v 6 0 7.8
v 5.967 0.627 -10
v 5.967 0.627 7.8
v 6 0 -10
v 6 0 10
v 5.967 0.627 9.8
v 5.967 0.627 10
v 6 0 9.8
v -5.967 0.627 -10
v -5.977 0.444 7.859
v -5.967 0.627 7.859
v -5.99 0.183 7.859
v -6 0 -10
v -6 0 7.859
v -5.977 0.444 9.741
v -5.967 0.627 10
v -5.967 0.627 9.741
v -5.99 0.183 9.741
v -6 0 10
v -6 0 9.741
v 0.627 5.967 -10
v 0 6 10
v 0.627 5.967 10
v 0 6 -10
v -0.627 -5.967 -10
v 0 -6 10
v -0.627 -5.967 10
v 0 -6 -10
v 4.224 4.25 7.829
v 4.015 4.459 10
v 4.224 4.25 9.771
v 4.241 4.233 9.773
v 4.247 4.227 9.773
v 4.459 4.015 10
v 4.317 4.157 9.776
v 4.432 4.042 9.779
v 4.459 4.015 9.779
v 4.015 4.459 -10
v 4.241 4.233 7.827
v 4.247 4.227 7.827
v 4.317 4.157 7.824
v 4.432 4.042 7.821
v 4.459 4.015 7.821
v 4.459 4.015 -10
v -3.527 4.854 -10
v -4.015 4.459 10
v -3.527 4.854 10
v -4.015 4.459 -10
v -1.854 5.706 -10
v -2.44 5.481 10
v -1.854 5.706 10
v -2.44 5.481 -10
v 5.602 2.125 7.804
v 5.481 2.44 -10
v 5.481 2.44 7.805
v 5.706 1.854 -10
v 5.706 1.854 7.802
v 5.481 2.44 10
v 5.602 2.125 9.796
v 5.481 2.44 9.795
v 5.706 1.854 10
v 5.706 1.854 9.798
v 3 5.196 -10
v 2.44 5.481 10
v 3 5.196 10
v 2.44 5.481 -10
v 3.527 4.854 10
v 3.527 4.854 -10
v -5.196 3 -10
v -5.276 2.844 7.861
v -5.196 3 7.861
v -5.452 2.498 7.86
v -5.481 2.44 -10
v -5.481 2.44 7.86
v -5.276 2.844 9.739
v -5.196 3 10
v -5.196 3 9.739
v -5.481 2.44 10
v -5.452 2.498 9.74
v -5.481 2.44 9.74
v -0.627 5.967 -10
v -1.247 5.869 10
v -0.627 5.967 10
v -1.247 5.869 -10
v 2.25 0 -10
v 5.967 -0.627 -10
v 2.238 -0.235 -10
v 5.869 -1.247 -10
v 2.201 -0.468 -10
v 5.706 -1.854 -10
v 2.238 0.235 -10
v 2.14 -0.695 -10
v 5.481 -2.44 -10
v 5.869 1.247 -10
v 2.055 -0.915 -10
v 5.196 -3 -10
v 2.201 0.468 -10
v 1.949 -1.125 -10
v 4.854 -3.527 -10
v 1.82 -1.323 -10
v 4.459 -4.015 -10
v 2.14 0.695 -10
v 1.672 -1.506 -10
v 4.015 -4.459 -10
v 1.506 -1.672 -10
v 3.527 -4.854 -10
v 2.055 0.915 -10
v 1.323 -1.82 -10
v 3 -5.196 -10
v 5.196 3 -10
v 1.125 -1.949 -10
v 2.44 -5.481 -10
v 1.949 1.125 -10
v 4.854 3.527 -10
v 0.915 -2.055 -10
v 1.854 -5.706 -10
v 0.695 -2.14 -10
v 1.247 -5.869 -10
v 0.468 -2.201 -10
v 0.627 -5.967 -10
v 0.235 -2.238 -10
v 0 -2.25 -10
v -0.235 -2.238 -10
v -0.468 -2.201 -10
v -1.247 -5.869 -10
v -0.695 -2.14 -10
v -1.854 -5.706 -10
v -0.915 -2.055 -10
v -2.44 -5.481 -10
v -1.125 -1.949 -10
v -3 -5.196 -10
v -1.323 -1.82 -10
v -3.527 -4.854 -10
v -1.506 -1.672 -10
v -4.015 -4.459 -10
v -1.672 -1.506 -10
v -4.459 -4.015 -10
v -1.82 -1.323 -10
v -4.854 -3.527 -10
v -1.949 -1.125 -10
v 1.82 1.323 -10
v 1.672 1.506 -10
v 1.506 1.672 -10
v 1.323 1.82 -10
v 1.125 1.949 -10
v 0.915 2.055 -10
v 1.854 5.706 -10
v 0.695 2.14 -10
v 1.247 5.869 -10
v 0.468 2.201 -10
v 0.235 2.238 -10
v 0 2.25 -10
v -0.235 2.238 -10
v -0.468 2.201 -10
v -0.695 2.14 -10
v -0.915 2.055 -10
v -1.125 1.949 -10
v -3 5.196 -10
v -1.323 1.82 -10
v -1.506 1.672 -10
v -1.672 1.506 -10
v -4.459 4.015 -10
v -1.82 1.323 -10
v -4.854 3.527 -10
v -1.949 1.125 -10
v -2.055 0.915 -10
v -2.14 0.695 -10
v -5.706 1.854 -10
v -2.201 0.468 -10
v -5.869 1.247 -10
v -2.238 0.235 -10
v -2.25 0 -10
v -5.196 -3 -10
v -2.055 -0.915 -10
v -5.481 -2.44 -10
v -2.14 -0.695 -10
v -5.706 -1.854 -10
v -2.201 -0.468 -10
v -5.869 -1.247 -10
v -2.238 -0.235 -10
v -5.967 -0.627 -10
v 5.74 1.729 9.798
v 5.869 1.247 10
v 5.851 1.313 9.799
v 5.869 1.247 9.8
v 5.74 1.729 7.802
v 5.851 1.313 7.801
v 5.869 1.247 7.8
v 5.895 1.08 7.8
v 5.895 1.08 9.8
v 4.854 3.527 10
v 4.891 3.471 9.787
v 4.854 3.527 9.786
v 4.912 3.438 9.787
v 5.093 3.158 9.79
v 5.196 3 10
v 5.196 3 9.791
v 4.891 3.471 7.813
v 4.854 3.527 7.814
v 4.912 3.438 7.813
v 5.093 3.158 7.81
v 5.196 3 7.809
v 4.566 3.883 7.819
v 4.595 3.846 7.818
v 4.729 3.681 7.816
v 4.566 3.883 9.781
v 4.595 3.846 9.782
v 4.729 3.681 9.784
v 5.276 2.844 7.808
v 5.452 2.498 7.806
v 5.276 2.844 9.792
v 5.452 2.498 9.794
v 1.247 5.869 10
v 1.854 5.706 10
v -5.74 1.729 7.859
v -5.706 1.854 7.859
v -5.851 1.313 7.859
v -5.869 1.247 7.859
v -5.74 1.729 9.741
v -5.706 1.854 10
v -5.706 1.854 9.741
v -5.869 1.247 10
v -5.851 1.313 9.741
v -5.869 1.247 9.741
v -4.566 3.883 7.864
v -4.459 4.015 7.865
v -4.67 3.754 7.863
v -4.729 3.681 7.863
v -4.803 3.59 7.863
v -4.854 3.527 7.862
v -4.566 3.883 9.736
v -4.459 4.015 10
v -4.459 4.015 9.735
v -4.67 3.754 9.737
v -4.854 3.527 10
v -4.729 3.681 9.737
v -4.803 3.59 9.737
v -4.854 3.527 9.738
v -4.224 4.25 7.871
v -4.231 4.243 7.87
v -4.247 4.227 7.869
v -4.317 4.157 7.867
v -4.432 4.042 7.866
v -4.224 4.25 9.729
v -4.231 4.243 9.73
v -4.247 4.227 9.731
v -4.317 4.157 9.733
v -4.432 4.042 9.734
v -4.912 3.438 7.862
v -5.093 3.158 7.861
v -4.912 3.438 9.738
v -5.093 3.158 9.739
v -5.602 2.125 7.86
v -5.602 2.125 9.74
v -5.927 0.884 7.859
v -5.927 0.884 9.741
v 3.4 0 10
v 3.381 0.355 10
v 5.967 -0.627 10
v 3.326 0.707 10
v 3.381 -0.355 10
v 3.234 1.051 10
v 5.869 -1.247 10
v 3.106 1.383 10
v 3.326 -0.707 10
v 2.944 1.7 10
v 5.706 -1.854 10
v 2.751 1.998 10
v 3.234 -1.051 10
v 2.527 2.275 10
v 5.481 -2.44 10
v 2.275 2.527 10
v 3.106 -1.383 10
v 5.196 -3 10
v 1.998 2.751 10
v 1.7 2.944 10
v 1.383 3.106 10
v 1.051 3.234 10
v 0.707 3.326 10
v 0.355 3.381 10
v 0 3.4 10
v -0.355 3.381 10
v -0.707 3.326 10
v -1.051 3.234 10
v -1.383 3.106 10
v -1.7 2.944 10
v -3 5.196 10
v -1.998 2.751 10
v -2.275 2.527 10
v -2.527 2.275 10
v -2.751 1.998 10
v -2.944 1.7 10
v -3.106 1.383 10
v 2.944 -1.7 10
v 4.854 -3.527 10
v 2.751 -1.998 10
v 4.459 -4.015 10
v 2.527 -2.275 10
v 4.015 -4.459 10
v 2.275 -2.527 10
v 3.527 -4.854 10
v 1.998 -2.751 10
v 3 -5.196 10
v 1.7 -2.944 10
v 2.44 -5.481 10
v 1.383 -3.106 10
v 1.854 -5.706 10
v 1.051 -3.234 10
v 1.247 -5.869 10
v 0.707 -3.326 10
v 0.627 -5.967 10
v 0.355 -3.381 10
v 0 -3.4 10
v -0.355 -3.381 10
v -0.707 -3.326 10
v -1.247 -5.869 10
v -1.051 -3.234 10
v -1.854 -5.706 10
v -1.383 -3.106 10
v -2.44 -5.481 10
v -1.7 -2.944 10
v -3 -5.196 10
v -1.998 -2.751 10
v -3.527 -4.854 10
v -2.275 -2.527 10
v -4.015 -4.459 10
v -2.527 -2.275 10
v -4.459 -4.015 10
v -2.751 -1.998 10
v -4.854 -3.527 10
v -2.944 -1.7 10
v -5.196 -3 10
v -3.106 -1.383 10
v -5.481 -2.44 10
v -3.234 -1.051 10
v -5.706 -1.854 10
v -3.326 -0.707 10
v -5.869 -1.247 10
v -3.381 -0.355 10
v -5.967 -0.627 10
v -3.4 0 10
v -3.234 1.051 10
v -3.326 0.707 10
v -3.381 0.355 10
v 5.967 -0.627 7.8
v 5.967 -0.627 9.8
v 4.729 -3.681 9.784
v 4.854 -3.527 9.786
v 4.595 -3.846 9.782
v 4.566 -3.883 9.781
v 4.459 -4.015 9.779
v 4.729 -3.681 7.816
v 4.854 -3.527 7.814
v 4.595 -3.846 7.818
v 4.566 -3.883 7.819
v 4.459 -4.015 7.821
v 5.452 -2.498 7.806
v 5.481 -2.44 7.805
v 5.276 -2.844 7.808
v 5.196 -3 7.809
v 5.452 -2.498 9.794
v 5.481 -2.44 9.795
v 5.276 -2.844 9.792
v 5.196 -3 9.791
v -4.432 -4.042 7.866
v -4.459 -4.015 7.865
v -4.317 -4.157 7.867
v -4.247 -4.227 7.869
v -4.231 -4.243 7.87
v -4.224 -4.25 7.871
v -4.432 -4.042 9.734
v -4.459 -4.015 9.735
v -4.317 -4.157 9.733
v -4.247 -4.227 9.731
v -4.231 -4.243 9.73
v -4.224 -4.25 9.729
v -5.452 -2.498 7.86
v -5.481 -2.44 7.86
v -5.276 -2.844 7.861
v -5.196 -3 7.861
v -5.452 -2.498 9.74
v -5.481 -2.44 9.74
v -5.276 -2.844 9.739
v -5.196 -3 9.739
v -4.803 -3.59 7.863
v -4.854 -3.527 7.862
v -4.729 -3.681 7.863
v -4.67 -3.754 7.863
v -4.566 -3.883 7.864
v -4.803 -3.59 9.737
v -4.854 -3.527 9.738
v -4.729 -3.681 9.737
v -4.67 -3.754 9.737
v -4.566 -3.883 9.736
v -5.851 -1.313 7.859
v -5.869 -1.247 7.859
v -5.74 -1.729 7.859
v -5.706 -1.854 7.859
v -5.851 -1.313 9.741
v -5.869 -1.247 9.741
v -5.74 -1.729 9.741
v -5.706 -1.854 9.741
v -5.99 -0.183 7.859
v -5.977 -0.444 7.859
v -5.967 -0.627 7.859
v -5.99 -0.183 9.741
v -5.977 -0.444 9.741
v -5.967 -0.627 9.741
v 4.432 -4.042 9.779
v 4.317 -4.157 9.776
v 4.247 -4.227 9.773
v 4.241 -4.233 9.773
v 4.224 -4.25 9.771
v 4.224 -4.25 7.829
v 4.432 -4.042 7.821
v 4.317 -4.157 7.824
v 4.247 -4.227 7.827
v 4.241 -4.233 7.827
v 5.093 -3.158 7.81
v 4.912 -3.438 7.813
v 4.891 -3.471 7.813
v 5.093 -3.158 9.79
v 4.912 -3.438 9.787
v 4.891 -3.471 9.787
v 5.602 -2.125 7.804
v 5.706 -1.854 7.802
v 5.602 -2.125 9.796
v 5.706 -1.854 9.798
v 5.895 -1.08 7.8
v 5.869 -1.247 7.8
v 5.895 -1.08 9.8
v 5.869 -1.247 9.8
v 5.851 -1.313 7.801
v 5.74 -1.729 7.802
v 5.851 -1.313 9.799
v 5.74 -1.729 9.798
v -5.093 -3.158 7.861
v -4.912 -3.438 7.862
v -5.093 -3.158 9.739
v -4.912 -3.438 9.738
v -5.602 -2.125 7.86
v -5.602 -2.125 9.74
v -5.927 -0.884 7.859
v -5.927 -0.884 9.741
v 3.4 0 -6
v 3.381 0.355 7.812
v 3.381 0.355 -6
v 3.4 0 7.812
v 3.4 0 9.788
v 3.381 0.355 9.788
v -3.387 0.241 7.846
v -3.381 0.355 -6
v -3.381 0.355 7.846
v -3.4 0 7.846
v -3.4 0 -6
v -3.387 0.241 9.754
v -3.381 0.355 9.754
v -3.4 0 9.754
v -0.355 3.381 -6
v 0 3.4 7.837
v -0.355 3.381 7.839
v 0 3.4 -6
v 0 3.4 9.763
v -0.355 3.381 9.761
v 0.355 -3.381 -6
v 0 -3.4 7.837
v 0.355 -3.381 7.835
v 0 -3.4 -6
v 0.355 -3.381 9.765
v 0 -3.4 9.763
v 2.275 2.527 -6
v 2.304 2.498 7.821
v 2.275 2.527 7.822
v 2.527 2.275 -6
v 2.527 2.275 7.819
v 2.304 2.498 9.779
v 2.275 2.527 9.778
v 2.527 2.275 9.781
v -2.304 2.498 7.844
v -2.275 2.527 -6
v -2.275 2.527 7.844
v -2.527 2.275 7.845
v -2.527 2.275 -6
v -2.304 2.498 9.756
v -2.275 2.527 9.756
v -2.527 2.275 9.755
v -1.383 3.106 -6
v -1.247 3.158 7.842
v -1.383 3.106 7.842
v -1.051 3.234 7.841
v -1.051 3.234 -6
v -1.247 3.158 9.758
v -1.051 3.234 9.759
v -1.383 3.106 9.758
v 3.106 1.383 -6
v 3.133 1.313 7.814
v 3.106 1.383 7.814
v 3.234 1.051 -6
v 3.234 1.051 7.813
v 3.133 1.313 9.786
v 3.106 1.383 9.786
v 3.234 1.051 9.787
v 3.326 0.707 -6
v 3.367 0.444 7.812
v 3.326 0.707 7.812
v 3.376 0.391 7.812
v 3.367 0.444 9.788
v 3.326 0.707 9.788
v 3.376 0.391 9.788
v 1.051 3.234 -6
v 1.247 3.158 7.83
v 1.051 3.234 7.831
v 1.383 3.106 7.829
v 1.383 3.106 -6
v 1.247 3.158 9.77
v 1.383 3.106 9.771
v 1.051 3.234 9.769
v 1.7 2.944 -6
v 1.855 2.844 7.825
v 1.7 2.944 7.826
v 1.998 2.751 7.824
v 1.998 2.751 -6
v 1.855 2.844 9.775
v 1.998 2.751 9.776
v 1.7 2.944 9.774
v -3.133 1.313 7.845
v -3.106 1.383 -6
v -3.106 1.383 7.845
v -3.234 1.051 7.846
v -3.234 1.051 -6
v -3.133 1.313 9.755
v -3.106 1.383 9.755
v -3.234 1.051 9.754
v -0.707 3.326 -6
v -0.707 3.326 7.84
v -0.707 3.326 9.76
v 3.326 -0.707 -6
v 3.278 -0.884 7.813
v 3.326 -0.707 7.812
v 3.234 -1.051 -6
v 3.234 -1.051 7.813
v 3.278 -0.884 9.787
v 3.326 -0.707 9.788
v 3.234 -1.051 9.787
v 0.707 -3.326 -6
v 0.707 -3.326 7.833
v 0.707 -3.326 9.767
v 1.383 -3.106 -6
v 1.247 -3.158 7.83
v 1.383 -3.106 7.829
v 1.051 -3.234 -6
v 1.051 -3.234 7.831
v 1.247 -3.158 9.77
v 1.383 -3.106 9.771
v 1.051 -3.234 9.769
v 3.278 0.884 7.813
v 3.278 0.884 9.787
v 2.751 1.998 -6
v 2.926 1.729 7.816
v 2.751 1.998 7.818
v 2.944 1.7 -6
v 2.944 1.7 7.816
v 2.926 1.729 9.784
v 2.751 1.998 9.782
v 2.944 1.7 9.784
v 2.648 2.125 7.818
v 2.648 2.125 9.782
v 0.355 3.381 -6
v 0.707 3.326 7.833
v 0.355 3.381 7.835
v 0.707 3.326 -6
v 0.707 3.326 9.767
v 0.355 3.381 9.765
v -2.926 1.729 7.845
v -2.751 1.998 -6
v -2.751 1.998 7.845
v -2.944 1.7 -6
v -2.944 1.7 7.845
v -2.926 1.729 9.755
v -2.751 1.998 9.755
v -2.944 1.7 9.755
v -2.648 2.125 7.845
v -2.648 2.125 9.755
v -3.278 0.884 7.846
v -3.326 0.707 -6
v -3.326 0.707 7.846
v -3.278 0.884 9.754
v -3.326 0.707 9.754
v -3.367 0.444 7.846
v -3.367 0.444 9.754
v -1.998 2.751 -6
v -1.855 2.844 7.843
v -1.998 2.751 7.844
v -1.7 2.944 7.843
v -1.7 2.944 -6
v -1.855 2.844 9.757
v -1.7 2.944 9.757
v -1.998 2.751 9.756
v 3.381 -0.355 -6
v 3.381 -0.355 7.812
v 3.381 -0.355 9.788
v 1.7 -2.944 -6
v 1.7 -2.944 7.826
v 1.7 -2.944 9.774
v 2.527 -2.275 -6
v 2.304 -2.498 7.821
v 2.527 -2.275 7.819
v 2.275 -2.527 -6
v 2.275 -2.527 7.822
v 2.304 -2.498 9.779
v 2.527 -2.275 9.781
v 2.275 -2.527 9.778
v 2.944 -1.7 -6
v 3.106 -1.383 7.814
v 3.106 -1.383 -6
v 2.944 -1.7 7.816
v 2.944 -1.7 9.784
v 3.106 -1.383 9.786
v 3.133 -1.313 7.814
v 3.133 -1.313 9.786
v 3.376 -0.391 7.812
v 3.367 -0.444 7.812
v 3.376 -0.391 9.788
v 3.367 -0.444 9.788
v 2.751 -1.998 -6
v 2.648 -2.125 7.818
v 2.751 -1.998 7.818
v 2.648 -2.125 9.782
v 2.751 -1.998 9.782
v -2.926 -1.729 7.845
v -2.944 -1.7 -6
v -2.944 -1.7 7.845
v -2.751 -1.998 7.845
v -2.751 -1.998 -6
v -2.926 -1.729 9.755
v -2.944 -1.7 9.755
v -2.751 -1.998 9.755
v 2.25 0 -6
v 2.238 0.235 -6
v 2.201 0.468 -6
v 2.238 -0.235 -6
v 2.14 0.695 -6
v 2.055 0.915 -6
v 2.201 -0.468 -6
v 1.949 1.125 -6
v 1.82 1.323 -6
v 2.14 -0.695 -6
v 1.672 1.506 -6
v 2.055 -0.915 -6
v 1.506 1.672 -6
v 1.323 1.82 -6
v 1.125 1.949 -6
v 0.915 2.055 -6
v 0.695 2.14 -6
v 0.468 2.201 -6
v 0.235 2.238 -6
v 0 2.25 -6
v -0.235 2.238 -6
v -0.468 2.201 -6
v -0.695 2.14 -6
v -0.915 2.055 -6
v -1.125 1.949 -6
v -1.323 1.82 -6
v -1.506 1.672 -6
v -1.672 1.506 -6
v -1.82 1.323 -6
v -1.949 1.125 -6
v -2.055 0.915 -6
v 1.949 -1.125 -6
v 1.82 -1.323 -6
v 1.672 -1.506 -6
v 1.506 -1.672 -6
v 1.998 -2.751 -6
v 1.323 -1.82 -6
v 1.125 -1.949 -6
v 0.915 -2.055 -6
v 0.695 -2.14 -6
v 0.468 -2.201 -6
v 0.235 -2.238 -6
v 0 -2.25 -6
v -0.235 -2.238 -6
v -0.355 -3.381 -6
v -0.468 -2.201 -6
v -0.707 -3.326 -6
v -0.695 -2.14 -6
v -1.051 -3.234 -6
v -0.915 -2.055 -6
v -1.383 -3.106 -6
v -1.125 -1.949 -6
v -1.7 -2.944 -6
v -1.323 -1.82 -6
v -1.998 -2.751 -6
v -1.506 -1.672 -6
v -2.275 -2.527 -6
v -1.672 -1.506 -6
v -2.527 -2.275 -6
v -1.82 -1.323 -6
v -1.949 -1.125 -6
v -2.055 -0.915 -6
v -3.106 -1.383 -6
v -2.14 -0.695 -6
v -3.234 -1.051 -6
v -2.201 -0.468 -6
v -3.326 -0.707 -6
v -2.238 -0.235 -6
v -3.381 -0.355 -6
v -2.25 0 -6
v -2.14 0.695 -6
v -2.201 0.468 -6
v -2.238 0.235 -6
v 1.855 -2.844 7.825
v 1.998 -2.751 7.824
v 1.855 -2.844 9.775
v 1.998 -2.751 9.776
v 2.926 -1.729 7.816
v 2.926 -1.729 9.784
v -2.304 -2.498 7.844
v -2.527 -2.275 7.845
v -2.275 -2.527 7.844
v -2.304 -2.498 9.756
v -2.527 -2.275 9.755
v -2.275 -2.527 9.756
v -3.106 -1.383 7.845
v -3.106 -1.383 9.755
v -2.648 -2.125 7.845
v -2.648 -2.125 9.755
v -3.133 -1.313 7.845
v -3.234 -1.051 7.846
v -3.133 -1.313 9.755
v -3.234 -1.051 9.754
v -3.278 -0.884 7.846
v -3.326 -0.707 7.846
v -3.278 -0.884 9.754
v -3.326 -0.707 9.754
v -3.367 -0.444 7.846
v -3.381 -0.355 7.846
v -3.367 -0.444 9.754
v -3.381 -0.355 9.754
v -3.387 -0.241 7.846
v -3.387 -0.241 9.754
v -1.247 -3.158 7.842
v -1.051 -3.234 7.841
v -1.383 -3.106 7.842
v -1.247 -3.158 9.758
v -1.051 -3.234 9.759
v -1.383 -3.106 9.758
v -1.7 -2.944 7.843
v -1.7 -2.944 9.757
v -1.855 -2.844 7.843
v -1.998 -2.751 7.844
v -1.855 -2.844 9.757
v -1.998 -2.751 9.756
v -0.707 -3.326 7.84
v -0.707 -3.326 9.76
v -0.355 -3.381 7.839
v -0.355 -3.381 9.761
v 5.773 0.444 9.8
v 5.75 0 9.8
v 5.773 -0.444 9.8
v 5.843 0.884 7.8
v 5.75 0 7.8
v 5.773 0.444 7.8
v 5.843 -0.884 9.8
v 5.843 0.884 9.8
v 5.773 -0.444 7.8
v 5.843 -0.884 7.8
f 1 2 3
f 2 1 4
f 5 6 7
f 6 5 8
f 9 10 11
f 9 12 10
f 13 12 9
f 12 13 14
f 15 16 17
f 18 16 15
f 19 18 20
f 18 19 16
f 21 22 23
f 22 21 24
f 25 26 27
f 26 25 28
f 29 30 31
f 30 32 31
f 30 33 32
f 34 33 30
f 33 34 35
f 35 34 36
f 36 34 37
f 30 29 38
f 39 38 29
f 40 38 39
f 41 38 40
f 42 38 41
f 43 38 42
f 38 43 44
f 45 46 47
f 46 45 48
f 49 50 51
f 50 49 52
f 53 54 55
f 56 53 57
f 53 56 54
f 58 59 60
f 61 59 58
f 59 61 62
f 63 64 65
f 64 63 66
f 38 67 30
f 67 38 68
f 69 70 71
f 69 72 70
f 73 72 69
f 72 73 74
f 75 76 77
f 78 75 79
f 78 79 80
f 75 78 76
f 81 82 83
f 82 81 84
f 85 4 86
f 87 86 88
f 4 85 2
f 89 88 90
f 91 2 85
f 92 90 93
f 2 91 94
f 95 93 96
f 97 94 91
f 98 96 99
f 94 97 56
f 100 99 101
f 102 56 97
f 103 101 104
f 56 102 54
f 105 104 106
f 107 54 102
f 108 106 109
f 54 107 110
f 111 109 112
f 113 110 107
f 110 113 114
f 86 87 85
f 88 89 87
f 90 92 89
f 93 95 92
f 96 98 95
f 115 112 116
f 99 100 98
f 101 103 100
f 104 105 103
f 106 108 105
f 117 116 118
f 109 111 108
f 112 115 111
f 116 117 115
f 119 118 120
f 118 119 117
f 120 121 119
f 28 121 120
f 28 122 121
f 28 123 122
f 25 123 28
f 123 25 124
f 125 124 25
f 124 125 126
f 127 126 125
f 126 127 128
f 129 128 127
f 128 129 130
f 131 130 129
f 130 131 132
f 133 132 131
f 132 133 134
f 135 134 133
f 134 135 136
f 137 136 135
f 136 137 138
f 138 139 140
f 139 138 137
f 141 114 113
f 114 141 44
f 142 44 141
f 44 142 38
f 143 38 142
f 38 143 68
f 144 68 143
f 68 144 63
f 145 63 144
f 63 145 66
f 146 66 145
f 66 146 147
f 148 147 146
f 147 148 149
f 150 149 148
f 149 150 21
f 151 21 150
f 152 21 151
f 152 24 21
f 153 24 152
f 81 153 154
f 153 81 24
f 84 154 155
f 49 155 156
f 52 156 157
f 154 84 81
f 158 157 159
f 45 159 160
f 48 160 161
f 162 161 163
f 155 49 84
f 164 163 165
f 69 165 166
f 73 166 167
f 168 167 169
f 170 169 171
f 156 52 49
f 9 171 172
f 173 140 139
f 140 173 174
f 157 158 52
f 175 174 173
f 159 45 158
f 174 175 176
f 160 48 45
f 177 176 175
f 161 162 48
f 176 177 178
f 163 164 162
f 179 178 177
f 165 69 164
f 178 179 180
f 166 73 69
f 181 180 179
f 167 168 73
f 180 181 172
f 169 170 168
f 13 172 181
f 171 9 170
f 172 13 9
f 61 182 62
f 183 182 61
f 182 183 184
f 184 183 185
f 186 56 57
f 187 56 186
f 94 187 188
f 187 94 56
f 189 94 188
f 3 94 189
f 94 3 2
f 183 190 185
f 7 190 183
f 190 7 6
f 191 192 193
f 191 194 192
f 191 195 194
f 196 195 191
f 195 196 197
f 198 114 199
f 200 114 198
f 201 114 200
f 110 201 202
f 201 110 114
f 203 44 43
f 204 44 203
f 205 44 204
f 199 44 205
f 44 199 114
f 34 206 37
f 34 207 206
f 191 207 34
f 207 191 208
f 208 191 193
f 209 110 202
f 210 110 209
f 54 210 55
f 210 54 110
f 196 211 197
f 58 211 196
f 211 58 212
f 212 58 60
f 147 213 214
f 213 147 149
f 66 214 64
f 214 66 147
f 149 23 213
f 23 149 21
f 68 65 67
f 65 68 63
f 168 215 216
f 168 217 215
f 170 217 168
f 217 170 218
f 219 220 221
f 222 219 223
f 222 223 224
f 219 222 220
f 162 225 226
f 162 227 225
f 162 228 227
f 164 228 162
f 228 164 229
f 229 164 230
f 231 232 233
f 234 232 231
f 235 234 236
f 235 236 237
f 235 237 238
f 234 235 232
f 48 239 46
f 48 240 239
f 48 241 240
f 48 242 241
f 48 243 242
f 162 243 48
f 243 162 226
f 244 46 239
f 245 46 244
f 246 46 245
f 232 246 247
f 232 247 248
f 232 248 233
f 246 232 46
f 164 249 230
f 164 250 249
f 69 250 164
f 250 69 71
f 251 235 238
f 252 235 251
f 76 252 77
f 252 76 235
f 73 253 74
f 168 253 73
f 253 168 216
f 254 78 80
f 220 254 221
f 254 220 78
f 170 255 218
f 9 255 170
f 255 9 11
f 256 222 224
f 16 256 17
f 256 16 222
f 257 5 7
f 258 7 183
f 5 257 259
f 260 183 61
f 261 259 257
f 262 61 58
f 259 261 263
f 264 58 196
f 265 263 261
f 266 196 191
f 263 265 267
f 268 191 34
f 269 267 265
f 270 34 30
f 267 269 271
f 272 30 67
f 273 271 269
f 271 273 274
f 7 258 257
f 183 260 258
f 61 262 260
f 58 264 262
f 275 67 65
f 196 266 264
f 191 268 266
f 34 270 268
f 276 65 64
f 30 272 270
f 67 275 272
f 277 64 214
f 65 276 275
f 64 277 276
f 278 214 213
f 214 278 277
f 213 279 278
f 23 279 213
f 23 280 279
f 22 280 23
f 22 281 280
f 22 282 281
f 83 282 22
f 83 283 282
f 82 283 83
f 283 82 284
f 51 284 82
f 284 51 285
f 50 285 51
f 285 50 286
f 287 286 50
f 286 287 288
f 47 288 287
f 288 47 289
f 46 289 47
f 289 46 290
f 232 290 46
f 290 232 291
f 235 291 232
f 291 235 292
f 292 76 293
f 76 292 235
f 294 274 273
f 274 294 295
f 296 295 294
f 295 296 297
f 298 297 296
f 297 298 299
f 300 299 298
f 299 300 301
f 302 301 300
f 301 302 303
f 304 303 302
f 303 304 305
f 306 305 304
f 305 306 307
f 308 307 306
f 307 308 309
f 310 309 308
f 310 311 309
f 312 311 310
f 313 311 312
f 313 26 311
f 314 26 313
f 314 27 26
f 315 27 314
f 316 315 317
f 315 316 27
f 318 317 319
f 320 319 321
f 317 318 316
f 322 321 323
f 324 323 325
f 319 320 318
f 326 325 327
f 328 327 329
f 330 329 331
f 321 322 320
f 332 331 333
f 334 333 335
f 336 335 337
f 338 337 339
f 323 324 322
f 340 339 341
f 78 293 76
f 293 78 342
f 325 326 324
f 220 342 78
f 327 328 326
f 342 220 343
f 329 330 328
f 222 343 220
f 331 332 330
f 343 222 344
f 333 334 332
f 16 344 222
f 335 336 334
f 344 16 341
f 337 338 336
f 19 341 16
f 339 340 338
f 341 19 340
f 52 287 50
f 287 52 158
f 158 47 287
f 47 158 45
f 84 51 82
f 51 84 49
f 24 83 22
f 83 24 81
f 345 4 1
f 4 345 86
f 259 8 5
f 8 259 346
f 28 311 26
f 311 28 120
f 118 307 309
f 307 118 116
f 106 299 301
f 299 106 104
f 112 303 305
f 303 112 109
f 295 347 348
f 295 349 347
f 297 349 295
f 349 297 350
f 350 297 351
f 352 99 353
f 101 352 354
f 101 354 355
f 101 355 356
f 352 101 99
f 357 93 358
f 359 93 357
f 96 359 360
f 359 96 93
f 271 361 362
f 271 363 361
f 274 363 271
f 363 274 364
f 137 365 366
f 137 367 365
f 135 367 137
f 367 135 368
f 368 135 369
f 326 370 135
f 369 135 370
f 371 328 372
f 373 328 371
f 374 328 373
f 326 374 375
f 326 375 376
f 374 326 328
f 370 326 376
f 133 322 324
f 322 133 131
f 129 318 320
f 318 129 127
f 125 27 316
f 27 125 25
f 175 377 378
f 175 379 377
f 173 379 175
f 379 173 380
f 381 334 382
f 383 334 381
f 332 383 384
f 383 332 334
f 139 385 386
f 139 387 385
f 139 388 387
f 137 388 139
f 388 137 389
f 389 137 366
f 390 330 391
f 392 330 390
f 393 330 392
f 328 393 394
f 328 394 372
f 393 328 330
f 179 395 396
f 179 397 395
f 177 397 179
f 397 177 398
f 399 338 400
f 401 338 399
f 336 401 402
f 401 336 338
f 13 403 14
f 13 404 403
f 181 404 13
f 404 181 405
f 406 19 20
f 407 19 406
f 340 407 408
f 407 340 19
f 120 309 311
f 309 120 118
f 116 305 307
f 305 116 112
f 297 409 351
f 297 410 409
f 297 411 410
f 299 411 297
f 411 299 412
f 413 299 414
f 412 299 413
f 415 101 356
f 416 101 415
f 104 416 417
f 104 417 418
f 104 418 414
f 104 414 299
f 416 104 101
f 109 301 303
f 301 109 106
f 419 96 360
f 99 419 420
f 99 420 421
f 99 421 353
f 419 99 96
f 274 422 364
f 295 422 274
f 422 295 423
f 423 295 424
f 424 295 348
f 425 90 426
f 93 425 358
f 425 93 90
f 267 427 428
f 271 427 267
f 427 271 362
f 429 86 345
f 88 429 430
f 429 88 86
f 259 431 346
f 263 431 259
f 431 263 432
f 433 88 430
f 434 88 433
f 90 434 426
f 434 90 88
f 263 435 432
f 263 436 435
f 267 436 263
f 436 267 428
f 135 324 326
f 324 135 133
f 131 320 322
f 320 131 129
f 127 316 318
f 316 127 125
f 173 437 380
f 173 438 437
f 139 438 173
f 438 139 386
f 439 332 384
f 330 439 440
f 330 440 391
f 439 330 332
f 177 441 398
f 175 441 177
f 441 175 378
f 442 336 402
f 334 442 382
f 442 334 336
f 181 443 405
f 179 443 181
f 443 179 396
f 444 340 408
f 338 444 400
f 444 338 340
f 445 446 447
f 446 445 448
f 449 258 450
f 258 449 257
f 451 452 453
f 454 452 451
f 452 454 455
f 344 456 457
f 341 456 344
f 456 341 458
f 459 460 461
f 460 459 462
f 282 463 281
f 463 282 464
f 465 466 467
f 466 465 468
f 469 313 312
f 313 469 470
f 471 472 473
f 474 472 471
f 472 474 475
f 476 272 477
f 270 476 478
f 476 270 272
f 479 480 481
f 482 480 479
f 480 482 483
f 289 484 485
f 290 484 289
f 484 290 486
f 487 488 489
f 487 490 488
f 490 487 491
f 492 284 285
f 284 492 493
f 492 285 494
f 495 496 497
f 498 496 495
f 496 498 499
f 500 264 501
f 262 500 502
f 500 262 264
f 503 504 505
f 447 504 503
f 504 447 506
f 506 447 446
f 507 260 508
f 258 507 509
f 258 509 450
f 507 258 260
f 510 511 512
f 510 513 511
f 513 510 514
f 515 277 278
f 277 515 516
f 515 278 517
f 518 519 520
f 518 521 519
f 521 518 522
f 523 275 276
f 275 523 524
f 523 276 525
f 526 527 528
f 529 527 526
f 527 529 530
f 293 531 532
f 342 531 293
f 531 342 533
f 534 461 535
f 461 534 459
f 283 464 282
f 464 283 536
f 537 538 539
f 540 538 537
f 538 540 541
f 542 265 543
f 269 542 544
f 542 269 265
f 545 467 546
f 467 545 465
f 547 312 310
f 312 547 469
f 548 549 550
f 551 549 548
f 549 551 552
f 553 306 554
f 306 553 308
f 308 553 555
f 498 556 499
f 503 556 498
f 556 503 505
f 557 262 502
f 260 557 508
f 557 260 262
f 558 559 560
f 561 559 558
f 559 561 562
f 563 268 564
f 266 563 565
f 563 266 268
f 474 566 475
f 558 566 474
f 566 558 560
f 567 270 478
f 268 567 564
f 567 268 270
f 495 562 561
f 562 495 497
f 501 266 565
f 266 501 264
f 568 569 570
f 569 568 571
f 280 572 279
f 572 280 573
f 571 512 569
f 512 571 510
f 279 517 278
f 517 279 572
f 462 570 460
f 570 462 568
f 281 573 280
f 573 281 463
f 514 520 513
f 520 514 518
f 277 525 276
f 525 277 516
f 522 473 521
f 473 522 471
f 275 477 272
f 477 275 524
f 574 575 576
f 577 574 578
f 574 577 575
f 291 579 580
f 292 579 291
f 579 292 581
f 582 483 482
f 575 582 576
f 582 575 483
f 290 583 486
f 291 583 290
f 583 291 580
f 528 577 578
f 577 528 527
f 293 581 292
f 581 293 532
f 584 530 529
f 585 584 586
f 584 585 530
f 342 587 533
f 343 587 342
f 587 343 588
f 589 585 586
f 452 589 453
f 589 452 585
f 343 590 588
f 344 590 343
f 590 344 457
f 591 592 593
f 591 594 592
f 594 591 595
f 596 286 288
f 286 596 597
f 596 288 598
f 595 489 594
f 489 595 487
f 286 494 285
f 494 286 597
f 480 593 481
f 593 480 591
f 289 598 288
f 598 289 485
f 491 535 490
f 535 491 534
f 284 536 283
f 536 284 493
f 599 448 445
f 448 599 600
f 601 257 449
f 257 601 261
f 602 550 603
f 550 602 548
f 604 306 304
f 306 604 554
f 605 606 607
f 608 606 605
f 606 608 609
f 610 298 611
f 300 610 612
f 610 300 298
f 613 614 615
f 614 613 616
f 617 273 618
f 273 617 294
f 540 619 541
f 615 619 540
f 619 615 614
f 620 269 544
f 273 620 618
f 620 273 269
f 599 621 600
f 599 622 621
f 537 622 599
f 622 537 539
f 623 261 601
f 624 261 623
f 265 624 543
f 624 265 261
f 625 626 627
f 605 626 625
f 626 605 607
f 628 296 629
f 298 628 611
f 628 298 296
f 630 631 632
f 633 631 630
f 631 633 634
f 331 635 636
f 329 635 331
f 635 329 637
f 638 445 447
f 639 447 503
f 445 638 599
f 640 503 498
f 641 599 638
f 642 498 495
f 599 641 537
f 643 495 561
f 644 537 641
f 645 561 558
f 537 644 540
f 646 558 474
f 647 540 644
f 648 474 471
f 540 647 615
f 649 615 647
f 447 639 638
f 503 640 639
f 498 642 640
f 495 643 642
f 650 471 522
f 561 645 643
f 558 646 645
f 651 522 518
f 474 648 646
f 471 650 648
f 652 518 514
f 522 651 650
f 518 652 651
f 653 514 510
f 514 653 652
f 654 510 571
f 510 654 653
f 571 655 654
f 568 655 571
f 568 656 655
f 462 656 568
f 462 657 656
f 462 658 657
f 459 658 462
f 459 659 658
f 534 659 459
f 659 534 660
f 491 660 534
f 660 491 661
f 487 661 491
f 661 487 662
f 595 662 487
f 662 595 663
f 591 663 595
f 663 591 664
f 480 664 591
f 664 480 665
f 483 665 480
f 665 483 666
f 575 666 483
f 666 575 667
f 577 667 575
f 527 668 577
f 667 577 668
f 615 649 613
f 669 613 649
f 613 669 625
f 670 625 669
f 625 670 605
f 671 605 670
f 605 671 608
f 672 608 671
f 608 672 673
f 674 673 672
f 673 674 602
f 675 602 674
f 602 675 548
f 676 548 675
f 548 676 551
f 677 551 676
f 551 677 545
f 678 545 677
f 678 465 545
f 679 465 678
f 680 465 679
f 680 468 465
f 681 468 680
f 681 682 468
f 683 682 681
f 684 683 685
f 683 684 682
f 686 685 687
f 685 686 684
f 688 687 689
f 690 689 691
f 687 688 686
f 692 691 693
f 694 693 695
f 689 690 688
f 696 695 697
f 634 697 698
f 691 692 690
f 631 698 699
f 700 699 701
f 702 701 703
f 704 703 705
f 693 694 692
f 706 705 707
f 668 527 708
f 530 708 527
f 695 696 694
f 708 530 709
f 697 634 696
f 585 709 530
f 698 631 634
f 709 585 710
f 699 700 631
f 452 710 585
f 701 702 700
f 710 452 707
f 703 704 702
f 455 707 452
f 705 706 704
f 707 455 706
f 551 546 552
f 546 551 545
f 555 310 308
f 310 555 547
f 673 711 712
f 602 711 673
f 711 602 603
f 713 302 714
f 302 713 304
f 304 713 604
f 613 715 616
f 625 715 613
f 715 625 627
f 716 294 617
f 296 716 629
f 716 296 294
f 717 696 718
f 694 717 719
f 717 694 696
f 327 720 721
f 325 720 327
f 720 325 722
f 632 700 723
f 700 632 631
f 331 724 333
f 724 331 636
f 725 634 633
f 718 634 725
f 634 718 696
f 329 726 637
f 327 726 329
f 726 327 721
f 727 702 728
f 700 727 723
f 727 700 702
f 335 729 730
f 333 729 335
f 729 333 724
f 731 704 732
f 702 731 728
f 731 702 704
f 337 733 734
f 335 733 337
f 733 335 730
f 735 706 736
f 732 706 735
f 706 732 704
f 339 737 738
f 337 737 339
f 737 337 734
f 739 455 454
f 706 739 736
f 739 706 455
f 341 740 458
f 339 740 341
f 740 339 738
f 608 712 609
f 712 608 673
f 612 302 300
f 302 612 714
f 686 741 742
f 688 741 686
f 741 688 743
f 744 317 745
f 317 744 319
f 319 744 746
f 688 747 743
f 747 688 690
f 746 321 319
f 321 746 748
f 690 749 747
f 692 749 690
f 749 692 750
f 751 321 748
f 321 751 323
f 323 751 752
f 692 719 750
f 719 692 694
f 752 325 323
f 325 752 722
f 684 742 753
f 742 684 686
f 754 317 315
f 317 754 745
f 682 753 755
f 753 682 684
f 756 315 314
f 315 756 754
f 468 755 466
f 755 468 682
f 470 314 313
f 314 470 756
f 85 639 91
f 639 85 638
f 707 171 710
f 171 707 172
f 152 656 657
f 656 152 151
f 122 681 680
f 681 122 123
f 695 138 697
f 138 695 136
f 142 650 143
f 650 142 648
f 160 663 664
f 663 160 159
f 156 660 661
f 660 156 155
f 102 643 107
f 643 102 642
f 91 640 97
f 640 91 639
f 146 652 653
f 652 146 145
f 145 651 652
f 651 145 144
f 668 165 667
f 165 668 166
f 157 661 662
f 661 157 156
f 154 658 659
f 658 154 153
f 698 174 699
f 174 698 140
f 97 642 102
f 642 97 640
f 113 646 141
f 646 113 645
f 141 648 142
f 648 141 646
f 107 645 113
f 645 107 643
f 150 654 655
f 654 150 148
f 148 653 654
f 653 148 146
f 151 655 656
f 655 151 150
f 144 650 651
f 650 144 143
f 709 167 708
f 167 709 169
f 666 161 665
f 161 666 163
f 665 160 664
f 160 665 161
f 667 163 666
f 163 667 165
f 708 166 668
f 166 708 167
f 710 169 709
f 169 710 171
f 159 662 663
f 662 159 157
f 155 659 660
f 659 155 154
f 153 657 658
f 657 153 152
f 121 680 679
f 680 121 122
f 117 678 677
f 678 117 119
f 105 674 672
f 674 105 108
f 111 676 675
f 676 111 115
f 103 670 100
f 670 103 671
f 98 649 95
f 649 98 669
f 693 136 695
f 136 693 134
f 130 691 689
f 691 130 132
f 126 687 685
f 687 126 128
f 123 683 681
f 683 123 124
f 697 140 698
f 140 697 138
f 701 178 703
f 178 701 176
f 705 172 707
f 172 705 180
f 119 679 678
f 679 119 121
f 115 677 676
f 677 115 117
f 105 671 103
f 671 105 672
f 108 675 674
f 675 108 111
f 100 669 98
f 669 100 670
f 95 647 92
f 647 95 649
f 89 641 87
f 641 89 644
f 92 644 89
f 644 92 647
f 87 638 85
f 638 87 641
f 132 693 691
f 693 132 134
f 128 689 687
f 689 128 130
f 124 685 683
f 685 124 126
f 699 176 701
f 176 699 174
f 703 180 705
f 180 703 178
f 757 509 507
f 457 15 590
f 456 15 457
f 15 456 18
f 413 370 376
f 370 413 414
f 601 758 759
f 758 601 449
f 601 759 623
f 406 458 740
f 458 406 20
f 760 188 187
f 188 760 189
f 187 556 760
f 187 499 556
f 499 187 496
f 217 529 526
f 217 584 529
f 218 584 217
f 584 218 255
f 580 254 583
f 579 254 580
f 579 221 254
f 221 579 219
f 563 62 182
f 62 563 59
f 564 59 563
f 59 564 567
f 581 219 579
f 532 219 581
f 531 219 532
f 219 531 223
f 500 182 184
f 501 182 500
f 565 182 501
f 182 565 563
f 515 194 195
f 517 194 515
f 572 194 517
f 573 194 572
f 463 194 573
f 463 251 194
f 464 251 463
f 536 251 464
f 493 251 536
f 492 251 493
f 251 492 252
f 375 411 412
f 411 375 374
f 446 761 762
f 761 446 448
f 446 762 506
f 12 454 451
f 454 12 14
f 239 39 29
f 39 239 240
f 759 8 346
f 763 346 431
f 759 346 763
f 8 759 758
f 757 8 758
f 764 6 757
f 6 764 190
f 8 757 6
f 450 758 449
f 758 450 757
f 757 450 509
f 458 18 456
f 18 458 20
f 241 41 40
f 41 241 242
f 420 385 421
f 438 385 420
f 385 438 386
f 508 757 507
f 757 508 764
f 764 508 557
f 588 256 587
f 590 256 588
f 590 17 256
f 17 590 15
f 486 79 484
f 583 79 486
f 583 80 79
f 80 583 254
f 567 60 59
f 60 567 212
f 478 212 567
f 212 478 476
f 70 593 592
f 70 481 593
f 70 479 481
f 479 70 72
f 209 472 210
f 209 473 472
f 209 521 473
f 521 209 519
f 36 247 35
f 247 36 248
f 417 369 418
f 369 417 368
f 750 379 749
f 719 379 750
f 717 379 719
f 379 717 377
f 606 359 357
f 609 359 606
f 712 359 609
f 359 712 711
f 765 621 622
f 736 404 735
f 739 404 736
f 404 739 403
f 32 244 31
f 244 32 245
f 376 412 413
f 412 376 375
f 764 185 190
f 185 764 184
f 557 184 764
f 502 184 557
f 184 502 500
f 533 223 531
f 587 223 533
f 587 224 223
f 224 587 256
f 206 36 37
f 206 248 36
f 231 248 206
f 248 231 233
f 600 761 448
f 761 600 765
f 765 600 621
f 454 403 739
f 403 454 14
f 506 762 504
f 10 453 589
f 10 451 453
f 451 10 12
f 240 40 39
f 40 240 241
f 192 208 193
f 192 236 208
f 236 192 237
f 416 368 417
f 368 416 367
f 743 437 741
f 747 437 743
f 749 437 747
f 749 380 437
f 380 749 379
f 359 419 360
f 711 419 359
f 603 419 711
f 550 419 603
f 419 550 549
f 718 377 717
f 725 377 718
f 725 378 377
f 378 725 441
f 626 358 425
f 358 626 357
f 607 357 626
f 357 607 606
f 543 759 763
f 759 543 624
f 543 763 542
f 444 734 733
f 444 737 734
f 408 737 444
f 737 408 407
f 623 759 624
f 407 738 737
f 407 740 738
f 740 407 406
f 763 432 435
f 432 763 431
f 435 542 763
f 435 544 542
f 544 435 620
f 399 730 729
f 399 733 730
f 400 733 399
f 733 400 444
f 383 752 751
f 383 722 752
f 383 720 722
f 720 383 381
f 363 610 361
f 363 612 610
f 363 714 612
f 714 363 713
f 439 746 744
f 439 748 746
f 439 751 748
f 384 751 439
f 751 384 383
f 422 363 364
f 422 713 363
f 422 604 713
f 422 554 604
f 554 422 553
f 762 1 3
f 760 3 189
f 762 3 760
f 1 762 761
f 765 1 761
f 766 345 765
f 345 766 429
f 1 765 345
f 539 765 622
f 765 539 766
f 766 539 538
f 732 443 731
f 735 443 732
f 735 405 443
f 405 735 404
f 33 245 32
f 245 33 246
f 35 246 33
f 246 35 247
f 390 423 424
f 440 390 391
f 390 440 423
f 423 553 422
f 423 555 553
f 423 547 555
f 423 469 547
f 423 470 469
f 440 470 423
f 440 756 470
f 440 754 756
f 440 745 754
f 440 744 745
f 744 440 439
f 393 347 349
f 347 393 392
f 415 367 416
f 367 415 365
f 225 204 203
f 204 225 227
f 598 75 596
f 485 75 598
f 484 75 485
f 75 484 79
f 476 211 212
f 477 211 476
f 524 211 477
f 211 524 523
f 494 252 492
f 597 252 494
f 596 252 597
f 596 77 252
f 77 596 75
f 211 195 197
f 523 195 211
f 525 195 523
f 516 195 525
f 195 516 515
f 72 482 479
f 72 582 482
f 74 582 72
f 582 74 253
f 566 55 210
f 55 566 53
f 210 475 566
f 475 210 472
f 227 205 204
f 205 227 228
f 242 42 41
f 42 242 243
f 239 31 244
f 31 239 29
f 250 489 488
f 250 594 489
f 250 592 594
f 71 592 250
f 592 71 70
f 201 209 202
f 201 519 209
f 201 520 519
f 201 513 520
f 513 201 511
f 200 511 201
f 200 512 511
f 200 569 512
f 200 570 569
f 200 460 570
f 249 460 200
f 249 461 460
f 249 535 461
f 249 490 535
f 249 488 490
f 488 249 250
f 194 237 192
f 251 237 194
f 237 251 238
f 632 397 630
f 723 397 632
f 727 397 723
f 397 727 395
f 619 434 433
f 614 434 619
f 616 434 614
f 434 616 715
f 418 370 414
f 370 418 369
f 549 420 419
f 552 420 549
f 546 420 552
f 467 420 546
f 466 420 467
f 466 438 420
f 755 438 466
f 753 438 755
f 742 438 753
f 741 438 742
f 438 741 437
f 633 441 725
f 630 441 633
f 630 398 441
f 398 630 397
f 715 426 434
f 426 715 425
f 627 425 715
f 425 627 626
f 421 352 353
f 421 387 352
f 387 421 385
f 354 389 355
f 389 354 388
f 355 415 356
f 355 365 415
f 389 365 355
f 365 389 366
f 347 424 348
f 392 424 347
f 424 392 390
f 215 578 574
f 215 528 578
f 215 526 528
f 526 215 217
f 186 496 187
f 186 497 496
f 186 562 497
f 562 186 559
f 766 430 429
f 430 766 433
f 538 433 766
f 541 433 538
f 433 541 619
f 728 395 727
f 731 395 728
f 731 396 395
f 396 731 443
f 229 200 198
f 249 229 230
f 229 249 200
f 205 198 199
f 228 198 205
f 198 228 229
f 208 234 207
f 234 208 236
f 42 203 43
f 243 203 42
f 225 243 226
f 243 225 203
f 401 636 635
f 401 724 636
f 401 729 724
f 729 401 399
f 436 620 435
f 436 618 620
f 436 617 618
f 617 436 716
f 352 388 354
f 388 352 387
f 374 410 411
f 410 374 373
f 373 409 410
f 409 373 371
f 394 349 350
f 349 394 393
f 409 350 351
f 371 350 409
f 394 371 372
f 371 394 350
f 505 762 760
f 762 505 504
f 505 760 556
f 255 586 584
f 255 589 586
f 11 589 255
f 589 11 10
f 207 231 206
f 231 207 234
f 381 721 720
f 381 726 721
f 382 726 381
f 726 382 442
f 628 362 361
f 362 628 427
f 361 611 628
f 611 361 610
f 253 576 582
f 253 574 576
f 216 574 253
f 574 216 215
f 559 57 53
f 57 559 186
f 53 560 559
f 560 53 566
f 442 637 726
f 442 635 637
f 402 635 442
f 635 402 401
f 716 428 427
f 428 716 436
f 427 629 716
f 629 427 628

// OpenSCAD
// Magnethalter

$fn=60;


module Halter() {
    difference(){
        Body();
        Schlitz();
    }
}


module Body() {
    difference() {
        cylinder(d=12,h=20,center=true);
        translate([0,0,4])
        cylinder(d=6.8,h=20,center=true);
        cylinder(d=4.5,h=25,center=true);
        
    }
}

module Schlitz() {
    translate([0,0,8.8])
    hull(){
        translate([10,0,0])
        cylinder(d=8.5,h=2,center=true);
        translate([-10,0,0])
        cylinder(d=8.5,h=1.8,center=true);
    }
}

Halter();
